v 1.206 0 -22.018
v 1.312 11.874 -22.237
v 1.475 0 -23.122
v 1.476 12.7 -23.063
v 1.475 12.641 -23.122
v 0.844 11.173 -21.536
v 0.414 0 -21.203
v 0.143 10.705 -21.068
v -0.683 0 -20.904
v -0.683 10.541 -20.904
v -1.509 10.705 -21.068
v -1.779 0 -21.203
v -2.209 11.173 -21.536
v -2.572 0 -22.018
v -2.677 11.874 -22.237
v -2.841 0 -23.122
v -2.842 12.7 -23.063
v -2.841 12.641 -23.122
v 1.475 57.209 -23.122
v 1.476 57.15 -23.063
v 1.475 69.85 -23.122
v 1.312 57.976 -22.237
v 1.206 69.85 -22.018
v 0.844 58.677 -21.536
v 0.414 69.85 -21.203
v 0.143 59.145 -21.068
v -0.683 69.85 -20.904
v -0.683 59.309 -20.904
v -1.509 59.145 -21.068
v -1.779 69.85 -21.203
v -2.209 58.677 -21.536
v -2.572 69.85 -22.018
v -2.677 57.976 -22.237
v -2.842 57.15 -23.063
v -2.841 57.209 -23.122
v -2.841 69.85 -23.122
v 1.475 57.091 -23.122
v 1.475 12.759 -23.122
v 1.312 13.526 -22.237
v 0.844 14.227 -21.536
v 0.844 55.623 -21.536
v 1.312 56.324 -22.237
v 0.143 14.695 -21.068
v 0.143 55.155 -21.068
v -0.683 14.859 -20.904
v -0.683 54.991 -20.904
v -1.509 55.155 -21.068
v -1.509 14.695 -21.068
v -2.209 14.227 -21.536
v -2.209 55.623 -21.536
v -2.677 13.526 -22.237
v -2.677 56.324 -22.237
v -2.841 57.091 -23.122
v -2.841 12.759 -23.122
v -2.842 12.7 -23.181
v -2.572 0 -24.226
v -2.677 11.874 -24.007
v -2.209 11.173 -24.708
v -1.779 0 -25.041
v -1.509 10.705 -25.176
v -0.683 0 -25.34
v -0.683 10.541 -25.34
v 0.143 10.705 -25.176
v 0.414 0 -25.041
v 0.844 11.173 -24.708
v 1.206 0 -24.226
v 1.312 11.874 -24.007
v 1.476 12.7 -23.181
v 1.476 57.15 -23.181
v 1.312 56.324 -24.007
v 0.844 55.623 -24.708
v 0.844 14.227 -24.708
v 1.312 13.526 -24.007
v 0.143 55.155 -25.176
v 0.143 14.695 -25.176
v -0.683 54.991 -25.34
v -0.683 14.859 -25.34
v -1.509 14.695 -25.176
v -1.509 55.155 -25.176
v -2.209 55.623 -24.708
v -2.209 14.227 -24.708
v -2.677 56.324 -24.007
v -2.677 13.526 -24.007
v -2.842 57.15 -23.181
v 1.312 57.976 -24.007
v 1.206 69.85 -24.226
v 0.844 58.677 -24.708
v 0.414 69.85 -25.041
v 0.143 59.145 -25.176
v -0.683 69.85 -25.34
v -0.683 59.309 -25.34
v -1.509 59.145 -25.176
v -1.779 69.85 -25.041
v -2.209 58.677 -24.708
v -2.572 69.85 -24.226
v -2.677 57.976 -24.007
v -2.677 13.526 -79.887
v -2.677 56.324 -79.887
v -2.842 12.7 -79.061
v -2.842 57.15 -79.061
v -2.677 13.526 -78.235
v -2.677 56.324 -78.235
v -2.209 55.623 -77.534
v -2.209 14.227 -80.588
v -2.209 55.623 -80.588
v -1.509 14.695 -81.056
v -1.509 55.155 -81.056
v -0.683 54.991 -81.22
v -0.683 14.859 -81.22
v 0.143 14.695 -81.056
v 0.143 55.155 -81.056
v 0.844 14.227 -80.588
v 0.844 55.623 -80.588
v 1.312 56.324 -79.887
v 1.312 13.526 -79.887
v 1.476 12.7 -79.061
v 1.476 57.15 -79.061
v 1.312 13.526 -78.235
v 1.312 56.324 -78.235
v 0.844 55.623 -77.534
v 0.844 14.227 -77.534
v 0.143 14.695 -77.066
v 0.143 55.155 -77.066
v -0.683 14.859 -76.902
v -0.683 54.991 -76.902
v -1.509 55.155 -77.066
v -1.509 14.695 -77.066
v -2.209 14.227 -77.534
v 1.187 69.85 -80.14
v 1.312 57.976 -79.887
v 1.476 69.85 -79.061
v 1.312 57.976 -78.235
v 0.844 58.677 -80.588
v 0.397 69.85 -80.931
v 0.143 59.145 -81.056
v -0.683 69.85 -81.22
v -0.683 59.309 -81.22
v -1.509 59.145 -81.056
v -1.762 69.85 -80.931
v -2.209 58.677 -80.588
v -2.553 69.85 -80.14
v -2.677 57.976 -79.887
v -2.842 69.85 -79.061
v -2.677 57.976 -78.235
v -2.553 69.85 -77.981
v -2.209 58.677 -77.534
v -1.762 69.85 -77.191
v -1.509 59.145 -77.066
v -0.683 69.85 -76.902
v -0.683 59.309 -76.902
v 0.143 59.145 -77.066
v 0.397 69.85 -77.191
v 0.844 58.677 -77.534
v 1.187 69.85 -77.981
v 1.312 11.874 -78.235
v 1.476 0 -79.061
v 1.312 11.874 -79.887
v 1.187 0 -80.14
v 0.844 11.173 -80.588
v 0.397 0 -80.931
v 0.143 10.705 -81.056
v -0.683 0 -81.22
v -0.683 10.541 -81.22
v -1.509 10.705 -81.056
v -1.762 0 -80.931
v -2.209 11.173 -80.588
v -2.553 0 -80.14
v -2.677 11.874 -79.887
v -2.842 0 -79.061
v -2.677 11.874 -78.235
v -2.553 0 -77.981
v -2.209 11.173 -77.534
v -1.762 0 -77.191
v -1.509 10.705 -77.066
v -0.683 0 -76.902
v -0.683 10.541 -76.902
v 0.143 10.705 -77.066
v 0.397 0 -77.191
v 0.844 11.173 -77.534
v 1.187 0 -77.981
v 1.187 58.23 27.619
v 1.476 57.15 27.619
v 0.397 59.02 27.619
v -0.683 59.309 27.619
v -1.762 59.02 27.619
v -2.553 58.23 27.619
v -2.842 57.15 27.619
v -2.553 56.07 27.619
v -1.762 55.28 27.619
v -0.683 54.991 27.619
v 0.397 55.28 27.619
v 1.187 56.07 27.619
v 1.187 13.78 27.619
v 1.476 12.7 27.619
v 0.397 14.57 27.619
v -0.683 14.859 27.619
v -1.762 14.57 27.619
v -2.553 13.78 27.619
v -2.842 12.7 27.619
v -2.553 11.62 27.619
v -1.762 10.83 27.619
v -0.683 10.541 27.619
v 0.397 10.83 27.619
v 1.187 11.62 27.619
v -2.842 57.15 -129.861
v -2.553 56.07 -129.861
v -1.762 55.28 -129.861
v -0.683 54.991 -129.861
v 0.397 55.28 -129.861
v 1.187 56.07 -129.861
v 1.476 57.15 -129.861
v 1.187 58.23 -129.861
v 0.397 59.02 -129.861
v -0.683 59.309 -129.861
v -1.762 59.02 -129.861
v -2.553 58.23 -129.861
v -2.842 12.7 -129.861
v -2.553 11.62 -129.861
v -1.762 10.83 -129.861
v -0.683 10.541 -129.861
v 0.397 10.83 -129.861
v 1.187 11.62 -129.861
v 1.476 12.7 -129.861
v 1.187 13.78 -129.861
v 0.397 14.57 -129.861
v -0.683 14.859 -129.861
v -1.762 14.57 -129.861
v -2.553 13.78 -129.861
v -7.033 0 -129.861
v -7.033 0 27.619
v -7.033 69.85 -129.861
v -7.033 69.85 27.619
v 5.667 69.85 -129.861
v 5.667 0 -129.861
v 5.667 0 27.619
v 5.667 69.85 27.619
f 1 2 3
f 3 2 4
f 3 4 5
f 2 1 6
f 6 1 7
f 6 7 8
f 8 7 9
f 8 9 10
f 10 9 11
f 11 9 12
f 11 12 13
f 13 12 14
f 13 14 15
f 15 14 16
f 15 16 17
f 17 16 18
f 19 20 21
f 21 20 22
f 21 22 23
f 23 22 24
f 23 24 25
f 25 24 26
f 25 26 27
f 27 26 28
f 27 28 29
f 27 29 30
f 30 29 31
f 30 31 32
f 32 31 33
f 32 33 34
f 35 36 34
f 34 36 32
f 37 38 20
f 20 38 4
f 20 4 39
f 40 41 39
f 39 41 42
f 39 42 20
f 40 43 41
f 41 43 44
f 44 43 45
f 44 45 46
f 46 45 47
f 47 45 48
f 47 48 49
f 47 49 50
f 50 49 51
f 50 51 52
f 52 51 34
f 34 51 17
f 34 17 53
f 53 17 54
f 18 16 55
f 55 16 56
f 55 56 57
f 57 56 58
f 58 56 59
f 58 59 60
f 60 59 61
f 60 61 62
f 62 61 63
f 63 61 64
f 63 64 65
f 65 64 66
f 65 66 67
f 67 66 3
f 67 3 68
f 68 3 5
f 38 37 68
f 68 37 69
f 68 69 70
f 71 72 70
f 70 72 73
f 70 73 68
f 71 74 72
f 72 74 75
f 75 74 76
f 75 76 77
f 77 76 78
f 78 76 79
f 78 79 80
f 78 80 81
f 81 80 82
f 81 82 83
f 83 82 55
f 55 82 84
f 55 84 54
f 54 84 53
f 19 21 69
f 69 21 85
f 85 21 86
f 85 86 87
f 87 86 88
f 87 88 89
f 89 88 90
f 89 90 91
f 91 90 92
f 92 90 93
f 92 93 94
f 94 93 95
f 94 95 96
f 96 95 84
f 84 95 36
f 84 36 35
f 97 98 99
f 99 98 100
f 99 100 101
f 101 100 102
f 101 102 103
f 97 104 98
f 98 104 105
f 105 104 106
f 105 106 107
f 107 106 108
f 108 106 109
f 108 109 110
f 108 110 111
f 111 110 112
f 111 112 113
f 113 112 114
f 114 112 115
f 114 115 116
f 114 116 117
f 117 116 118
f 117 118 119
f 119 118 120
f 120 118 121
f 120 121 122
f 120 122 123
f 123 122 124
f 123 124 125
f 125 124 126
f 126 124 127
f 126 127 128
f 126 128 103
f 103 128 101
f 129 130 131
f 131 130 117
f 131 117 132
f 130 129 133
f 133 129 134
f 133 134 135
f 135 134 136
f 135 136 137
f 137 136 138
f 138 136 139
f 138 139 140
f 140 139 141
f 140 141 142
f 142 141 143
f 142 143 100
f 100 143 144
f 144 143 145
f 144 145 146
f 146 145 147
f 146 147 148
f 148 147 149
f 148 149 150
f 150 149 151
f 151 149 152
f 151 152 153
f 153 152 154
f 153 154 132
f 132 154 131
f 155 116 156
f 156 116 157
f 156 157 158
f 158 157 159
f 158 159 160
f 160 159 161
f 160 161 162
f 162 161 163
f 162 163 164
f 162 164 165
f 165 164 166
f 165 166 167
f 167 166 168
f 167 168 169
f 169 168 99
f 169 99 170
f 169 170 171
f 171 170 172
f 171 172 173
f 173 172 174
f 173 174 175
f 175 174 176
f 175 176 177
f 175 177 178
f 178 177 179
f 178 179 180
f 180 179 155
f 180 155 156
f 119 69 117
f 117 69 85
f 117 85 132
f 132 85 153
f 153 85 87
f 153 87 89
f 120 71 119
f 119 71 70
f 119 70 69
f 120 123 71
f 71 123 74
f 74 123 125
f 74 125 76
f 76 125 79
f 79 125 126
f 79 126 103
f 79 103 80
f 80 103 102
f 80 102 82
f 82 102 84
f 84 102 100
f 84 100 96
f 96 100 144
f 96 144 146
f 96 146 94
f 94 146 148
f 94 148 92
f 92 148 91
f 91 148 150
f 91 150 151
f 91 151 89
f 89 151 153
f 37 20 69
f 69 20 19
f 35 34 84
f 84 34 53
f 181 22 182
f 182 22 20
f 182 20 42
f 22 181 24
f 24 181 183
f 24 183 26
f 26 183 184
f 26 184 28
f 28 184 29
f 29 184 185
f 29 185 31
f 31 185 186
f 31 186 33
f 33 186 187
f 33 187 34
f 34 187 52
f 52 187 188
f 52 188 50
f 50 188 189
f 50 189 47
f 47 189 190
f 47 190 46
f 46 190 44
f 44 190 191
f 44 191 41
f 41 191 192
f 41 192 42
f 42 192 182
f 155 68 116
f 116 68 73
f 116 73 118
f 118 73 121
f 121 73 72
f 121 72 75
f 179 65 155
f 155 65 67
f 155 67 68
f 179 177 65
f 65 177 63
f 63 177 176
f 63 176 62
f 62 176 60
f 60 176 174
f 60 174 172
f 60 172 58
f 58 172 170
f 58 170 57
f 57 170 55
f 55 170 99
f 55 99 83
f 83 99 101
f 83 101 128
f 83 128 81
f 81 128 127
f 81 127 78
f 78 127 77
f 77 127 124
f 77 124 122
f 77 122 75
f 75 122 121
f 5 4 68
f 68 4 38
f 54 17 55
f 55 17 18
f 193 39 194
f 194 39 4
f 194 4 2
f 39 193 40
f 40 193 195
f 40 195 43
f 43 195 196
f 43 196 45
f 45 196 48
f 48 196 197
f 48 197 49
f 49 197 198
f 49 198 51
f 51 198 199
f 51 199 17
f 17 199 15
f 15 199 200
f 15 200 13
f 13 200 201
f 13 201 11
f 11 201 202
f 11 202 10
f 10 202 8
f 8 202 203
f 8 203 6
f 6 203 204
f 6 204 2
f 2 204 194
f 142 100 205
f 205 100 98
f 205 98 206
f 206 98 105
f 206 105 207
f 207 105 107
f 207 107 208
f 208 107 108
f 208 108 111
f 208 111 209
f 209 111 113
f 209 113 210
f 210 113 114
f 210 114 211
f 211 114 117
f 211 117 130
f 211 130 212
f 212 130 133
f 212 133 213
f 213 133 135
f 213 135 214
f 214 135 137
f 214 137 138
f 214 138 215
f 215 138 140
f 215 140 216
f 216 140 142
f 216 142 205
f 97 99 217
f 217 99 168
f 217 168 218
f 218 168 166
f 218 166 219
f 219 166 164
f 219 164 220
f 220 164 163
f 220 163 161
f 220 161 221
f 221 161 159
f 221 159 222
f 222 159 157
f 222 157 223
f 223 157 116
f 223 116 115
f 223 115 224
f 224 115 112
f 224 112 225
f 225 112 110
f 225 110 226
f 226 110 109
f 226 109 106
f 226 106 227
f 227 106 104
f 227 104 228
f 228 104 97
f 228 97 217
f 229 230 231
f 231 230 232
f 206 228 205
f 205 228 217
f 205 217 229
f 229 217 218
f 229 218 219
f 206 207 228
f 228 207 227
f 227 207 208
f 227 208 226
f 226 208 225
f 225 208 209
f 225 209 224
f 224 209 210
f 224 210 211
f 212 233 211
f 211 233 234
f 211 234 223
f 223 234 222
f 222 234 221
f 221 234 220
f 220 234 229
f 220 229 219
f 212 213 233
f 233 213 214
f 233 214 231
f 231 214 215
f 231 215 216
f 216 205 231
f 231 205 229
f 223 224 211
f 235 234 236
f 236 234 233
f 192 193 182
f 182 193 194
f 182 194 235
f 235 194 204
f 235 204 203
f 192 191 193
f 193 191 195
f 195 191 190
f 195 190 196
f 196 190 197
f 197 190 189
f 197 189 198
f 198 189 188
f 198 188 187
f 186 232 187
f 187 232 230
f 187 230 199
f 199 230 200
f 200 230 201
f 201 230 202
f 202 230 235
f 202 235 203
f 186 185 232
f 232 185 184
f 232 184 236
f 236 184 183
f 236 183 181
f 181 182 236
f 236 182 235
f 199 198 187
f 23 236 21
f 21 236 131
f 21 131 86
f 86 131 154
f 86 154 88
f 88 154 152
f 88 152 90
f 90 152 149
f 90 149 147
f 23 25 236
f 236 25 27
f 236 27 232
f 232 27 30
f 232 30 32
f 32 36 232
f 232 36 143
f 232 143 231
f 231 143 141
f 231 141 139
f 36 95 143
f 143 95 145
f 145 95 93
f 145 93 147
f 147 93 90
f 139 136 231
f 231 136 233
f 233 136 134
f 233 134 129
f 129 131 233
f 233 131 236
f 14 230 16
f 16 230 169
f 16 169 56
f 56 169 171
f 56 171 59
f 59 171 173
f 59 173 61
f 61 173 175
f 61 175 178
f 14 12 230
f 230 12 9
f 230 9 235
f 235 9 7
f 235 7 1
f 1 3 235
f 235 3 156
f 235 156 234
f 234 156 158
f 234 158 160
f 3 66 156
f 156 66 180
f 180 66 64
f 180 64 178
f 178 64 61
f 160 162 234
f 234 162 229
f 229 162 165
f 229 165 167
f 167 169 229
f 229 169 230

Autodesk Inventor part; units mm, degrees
ref_plane "YZ Plane" through (0, 0, 0) normal (1, 0, 0) x (0, 1, 0)
ref_plane "XZ Plane" through (0, 0, 0) normal (0, 1, 0) x (-1, 0, 0)
ref_plane "XY Plane" through (0, 0, 0) normal (0, 0, 1) x (1, 0, 0)
sketch "Sketch1" plane through (0, 0, 0) normal (0, 1, 0) x (-1, 0, 0)
  line L0 (7.0328, 27.6191) -> (-5.6672, 27.6191)
  line L1 (-5.6672, 27.6191) -> (-5.6672, -129.8609)
  line L2 (-5.6672, -129.8609) -> (7.0328, -129.8609)
  line L3 (7.0328, -129.8609) -> (7.0328, 27.6191)
  point P0 (0, 0)
  dimension "d0" = 12.7
  dimension "d1" = 157.48
extrude "Extrusion1" add sketch "Sketch1" along normal blind 69.85
sketch "Sketch2" plane through (-7.0328, 0, 27.6191) normal (0, 0, 1) x (1, 0, 0)
  line L0 (12.7, 0) -> (12.7, 69.85) projected
  line L1 (12.7, 0) -> (0, 0) projected
  line L2 (0, 69.85) -> (12.7, 69.85) projected
  point P0 (7.0328, 0)
  point P1 (6.35, 57.15)
  point P2 (6.35, 12.7)
  dimension "d4" = 0
  dimension "d5" = 6.35
  dimension "d6" = 12.7
  dimension "d7" = 12.7
hole "Hole1" at (-0.6828, 57.15, 27.6191) at (-0.6828, 12.7, 27.6191) direction (0, 0, -1) diameter 4.318 end through all
sketch "Sketch3" plane through (0, 69.85, 0) normal (0, 1, 0) x (1, 0, 0)
  line L0 (-7.0328, 129.8609) -> (-7.0328, -27.6191) projected
  line L1 (-7.0328, -27.6191) -> (5.6672, -27.6191) projected
  line L2 (5.6672, 129.8609) -> (-7.0328, 129.8609) projected
  point P0 (0, 0)
  point P1 (-0.6828, 23.1809)
  point P2 (-0.6828, 23.0627)
  point P3 (-0.6828, 79.0609)
  dimension "d15" = 0
  dimension "d16" = 6.35
  dimension "d17" = 50.8
  dimension "d18" = 50.8
  dimension "d26" = 55.88
hole "Hole2" at (-0.6828, 69.85, -23.1809) at (-0.6828, 69.85, -23.0627) at (-0.6828, 69.85, -79.0609) direction (0, -1, 0) diameter 4.318 end through all
properties part number "BatterySide"
